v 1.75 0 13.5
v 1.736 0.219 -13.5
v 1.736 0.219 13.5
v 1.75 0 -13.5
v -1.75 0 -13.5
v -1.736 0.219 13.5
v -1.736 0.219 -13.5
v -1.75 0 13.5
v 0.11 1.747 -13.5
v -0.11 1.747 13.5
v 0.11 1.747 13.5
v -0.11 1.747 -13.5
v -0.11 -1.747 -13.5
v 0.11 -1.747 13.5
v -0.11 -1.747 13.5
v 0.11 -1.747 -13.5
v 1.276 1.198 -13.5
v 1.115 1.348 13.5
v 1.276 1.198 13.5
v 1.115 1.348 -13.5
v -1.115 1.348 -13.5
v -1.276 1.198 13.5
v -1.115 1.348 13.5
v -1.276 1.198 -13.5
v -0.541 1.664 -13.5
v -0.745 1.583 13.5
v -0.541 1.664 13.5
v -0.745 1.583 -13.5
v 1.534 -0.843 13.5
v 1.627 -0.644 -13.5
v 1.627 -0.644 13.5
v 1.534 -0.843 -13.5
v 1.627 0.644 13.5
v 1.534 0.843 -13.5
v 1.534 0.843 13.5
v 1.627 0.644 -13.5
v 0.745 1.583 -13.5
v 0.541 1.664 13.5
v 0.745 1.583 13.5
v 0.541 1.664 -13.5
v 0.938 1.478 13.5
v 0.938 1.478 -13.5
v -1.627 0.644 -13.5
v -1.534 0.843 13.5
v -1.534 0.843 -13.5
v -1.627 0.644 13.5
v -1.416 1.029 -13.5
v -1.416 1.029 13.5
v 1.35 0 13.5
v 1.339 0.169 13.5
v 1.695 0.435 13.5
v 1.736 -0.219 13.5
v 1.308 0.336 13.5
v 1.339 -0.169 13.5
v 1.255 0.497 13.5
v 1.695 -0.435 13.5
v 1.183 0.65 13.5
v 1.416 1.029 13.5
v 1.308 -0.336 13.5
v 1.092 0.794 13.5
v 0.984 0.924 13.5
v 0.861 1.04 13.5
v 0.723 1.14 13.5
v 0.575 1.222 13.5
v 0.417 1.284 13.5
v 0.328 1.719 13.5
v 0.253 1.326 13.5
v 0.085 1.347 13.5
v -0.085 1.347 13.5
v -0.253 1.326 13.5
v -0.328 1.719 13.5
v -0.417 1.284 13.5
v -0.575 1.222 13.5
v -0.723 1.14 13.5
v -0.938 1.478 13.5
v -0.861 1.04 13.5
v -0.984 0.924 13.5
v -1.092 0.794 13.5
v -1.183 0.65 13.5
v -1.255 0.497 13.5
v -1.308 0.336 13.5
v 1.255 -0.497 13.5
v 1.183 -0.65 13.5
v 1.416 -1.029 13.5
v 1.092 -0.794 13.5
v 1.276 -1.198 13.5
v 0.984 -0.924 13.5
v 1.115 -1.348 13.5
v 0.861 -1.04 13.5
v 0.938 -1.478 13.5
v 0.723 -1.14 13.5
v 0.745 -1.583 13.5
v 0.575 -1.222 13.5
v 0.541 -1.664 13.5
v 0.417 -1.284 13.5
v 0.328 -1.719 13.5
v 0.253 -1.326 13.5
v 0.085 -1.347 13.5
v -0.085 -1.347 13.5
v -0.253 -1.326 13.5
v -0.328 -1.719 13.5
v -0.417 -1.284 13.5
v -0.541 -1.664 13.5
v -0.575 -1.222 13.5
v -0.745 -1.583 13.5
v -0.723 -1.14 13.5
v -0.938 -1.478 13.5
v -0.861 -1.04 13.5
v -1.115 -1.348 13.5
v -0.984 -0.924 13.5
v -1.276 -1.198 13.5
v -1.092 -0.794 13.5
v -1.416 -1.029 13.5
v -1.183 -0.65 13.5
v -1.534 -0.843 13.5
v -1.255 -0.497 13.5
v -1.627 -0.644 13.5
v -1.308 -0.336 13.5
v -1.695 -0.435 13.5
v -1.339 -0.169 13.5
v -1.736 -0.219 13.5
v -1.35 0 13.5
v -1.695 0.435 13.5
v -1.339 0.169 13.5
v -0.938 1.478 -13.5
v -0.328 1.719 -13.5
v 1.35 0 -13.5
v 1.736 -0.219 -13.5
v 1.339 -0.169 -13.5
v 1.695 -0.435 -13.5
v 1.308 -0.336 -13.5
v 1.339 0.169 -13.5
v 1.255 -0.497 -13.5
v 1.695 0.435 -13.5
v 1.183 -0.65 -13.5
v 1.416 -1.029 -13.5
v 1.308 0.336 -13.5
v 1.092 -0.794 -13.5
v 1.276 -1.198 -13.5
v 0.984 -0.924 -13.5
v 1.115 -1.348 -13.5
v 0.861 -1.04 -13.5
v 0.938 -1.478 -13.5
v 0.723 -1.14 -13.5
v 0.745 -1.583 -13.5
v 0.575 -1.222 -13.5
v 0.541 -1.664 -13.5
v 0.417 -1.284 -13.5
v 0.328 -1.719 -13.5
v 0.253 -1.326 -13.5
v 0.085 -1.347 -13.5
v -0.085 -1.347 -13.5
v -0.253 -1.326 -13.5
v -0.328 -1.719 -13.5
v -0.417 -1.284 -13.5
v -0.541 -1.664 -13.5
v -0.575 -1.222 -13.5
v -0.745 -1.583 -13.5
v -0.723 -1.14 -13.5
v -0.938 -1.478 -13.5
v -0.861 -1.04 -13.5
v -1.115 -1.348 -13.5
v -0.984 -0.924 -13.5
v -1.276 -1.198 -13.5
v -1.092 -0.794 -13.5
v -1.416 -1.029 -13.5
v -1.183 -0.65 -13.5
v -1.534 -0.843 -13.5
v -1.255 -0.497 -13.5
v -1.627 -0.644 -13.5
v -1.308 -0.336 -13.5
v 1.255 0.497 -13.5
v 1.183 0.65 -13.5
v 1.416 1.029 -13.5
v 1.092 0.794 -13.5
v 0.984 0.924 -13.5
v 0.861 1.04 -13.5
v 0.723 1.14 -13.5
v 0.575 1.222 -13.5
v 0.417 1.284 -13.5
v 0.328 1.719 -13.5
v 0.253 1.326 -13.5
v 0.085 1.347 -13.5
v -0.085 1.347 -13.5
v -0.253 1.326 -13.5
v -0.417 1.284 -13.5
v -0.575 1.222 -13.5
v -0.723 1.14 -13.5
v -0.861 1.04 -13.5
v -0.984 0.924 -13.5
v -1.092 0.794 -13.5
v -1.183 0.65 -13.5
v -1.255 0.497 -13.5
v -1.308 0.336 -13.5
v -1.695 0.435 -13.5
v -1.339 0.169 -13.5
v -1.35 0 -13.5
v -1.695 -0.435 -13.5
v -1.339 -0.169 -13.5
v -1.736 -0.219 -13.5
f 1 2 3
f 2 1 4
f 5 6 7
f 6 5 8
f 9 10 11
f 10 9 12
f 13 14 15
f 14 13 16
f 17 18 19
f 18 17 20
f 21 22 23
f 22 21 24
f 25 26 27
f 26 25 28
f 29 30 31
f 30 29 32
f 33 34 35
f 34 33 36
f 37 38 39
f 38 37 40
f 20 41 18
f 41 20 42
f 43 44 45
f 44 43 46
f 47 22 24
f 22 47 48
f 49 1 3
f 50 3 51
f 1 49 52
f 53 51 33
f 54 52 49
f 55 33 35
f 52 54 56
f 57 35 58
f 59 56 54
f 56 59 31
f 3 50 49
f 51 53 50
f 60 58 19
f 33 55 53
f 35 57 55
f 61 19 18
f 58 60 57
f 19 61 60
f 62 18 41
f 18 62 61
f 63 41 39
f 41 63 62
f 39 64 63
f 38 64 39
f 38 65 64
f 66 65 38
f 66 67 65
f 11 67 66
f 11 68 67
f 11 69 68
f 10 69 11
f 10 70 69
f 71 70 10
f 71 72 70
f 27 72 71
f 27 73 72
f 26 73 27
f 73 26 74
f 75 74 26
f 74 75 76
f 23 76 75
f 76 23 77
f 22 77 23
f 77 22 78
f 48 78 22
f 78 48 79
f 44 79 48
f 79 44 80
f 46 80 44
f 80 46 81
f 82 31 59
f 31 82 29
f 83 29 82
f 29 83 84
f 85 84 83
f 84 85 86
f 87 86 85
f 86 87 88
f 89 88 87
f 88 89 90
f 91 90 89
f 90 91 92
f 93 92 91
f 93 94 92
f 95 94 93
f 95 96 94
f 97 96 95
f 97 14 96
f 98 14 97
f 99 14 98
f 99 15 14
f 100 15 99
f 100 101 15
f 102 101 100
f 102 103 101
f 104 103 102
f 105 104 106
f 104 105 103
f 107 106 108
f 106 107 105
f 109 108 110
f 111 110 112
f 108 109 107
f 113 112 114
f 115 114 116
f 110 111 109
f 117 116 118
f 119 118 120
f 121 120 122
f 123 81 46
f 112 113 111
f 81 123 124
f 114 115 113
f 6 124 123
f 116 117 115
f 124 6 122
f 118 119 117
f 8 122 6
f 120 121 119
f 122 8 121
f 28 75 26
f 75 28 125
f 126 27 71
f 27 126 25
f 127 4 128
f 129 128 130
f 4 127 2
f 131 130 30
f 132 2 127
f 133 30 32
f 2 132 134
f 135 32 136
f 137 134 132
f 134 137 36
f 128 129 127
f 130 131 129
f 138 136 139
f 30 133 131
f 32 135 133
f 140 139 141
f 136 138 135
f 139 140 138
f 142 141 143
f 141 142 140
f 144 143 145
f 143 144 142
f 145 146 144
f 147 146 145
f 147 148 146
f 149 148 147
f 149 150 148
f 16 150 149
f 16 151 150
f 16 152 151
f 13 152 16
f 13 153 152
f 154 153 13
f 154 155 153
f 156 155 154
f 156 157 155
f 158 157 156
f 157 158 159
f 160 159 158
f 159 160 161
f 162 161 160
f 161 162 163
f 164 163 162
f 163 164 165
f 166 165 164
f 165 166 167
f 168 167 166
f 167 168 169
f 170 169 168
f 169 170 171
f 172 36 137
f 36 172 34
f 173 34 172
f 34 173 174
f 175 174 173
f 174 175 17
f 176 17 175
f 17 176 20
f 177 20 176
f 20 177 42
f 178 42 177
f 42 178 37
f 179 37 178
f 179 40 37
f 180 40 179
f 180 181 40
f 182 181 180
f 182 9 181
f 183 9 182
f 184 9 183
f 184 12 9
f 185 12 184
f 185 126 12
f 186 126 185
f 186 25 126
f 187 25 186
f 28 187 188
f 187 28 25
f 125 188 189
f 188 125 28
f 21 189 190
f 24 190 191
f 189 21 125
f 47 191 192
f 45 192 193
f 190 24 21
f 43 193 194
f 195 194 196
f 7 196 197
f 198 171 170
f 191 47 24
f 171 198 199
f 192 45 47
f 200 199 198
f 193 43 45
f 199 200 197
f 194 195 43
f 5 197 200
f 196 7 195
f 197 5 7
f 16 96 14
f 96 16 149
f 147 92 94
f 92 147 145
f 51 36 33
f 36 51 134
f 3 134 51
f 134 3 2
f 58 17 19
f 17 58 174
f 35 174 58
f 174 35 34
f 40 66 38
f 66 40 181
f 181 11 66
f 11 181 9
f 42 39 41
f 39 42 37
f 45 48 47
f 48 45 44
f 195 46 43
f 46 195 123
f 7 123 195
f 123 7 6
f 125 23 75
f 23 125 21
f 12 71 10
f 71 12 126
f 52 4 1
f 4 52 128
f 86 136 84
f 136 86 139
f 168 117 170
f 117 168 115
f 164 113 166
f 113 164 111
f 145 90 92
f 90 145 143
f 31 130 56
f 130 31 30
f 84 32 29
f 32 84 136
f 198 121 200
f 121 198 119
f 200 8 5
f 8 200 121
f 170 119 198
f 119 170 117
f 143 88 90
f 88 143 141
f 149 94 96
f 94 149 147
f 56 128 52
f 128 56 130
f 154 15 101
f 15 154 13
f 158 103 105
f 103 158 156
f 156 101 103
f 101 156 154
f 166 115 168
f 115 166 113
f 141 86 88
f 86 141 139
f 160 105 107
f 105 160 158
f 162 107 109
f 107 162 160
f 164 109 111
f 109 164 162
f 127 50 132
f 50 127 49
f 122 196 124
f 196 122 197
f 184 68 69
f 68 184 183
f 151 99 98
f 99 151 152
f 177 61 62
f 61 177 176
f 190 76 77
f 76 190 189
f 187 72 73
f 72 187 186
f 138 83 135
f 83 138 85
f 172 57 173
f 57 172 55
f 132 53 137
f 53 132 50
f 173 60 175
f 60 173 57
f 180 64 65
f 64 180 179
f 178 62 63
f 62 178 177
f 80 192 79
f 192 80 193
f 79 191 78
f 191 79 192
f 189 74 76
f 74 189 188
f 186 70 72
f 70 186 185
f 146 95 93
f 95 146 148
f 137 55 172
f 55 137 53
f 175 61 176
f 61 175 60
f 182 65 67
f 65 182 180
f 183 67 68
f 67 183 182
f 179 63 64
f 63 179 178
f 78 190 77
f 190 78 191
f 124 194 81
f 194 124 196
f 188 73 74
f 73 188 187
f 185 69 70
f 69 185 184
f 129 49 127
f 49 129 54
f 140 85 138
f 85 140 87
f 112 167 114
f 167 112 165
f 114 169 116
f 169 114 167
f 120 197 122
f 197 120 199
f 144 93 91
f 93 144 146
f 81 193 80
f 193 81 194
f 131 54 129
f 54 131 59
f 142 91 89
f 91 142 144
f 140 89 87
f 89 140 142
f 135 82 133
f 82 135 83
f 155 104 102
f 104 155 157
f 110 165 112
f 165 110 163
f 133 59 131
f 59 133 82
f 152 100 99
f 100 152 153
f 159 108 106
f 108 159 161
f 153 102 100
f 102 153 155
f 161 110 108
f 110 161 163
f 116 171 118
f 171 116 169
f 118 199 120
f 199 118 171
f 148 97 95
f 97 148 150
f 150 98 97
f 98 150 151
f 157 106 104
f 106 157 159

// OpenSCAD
$fn = 50;


difference() {
	union() {
		translate(v = [0, 0, -13.5000000000]) {
			cylinder(h = 27, r = 1.7500000000);
		}
	}
	union() {
		translate(v = [0, 0, -100.0000000000]) {
			cylinder(h = 200, r = 1.3500000000);
		}
	}
}
